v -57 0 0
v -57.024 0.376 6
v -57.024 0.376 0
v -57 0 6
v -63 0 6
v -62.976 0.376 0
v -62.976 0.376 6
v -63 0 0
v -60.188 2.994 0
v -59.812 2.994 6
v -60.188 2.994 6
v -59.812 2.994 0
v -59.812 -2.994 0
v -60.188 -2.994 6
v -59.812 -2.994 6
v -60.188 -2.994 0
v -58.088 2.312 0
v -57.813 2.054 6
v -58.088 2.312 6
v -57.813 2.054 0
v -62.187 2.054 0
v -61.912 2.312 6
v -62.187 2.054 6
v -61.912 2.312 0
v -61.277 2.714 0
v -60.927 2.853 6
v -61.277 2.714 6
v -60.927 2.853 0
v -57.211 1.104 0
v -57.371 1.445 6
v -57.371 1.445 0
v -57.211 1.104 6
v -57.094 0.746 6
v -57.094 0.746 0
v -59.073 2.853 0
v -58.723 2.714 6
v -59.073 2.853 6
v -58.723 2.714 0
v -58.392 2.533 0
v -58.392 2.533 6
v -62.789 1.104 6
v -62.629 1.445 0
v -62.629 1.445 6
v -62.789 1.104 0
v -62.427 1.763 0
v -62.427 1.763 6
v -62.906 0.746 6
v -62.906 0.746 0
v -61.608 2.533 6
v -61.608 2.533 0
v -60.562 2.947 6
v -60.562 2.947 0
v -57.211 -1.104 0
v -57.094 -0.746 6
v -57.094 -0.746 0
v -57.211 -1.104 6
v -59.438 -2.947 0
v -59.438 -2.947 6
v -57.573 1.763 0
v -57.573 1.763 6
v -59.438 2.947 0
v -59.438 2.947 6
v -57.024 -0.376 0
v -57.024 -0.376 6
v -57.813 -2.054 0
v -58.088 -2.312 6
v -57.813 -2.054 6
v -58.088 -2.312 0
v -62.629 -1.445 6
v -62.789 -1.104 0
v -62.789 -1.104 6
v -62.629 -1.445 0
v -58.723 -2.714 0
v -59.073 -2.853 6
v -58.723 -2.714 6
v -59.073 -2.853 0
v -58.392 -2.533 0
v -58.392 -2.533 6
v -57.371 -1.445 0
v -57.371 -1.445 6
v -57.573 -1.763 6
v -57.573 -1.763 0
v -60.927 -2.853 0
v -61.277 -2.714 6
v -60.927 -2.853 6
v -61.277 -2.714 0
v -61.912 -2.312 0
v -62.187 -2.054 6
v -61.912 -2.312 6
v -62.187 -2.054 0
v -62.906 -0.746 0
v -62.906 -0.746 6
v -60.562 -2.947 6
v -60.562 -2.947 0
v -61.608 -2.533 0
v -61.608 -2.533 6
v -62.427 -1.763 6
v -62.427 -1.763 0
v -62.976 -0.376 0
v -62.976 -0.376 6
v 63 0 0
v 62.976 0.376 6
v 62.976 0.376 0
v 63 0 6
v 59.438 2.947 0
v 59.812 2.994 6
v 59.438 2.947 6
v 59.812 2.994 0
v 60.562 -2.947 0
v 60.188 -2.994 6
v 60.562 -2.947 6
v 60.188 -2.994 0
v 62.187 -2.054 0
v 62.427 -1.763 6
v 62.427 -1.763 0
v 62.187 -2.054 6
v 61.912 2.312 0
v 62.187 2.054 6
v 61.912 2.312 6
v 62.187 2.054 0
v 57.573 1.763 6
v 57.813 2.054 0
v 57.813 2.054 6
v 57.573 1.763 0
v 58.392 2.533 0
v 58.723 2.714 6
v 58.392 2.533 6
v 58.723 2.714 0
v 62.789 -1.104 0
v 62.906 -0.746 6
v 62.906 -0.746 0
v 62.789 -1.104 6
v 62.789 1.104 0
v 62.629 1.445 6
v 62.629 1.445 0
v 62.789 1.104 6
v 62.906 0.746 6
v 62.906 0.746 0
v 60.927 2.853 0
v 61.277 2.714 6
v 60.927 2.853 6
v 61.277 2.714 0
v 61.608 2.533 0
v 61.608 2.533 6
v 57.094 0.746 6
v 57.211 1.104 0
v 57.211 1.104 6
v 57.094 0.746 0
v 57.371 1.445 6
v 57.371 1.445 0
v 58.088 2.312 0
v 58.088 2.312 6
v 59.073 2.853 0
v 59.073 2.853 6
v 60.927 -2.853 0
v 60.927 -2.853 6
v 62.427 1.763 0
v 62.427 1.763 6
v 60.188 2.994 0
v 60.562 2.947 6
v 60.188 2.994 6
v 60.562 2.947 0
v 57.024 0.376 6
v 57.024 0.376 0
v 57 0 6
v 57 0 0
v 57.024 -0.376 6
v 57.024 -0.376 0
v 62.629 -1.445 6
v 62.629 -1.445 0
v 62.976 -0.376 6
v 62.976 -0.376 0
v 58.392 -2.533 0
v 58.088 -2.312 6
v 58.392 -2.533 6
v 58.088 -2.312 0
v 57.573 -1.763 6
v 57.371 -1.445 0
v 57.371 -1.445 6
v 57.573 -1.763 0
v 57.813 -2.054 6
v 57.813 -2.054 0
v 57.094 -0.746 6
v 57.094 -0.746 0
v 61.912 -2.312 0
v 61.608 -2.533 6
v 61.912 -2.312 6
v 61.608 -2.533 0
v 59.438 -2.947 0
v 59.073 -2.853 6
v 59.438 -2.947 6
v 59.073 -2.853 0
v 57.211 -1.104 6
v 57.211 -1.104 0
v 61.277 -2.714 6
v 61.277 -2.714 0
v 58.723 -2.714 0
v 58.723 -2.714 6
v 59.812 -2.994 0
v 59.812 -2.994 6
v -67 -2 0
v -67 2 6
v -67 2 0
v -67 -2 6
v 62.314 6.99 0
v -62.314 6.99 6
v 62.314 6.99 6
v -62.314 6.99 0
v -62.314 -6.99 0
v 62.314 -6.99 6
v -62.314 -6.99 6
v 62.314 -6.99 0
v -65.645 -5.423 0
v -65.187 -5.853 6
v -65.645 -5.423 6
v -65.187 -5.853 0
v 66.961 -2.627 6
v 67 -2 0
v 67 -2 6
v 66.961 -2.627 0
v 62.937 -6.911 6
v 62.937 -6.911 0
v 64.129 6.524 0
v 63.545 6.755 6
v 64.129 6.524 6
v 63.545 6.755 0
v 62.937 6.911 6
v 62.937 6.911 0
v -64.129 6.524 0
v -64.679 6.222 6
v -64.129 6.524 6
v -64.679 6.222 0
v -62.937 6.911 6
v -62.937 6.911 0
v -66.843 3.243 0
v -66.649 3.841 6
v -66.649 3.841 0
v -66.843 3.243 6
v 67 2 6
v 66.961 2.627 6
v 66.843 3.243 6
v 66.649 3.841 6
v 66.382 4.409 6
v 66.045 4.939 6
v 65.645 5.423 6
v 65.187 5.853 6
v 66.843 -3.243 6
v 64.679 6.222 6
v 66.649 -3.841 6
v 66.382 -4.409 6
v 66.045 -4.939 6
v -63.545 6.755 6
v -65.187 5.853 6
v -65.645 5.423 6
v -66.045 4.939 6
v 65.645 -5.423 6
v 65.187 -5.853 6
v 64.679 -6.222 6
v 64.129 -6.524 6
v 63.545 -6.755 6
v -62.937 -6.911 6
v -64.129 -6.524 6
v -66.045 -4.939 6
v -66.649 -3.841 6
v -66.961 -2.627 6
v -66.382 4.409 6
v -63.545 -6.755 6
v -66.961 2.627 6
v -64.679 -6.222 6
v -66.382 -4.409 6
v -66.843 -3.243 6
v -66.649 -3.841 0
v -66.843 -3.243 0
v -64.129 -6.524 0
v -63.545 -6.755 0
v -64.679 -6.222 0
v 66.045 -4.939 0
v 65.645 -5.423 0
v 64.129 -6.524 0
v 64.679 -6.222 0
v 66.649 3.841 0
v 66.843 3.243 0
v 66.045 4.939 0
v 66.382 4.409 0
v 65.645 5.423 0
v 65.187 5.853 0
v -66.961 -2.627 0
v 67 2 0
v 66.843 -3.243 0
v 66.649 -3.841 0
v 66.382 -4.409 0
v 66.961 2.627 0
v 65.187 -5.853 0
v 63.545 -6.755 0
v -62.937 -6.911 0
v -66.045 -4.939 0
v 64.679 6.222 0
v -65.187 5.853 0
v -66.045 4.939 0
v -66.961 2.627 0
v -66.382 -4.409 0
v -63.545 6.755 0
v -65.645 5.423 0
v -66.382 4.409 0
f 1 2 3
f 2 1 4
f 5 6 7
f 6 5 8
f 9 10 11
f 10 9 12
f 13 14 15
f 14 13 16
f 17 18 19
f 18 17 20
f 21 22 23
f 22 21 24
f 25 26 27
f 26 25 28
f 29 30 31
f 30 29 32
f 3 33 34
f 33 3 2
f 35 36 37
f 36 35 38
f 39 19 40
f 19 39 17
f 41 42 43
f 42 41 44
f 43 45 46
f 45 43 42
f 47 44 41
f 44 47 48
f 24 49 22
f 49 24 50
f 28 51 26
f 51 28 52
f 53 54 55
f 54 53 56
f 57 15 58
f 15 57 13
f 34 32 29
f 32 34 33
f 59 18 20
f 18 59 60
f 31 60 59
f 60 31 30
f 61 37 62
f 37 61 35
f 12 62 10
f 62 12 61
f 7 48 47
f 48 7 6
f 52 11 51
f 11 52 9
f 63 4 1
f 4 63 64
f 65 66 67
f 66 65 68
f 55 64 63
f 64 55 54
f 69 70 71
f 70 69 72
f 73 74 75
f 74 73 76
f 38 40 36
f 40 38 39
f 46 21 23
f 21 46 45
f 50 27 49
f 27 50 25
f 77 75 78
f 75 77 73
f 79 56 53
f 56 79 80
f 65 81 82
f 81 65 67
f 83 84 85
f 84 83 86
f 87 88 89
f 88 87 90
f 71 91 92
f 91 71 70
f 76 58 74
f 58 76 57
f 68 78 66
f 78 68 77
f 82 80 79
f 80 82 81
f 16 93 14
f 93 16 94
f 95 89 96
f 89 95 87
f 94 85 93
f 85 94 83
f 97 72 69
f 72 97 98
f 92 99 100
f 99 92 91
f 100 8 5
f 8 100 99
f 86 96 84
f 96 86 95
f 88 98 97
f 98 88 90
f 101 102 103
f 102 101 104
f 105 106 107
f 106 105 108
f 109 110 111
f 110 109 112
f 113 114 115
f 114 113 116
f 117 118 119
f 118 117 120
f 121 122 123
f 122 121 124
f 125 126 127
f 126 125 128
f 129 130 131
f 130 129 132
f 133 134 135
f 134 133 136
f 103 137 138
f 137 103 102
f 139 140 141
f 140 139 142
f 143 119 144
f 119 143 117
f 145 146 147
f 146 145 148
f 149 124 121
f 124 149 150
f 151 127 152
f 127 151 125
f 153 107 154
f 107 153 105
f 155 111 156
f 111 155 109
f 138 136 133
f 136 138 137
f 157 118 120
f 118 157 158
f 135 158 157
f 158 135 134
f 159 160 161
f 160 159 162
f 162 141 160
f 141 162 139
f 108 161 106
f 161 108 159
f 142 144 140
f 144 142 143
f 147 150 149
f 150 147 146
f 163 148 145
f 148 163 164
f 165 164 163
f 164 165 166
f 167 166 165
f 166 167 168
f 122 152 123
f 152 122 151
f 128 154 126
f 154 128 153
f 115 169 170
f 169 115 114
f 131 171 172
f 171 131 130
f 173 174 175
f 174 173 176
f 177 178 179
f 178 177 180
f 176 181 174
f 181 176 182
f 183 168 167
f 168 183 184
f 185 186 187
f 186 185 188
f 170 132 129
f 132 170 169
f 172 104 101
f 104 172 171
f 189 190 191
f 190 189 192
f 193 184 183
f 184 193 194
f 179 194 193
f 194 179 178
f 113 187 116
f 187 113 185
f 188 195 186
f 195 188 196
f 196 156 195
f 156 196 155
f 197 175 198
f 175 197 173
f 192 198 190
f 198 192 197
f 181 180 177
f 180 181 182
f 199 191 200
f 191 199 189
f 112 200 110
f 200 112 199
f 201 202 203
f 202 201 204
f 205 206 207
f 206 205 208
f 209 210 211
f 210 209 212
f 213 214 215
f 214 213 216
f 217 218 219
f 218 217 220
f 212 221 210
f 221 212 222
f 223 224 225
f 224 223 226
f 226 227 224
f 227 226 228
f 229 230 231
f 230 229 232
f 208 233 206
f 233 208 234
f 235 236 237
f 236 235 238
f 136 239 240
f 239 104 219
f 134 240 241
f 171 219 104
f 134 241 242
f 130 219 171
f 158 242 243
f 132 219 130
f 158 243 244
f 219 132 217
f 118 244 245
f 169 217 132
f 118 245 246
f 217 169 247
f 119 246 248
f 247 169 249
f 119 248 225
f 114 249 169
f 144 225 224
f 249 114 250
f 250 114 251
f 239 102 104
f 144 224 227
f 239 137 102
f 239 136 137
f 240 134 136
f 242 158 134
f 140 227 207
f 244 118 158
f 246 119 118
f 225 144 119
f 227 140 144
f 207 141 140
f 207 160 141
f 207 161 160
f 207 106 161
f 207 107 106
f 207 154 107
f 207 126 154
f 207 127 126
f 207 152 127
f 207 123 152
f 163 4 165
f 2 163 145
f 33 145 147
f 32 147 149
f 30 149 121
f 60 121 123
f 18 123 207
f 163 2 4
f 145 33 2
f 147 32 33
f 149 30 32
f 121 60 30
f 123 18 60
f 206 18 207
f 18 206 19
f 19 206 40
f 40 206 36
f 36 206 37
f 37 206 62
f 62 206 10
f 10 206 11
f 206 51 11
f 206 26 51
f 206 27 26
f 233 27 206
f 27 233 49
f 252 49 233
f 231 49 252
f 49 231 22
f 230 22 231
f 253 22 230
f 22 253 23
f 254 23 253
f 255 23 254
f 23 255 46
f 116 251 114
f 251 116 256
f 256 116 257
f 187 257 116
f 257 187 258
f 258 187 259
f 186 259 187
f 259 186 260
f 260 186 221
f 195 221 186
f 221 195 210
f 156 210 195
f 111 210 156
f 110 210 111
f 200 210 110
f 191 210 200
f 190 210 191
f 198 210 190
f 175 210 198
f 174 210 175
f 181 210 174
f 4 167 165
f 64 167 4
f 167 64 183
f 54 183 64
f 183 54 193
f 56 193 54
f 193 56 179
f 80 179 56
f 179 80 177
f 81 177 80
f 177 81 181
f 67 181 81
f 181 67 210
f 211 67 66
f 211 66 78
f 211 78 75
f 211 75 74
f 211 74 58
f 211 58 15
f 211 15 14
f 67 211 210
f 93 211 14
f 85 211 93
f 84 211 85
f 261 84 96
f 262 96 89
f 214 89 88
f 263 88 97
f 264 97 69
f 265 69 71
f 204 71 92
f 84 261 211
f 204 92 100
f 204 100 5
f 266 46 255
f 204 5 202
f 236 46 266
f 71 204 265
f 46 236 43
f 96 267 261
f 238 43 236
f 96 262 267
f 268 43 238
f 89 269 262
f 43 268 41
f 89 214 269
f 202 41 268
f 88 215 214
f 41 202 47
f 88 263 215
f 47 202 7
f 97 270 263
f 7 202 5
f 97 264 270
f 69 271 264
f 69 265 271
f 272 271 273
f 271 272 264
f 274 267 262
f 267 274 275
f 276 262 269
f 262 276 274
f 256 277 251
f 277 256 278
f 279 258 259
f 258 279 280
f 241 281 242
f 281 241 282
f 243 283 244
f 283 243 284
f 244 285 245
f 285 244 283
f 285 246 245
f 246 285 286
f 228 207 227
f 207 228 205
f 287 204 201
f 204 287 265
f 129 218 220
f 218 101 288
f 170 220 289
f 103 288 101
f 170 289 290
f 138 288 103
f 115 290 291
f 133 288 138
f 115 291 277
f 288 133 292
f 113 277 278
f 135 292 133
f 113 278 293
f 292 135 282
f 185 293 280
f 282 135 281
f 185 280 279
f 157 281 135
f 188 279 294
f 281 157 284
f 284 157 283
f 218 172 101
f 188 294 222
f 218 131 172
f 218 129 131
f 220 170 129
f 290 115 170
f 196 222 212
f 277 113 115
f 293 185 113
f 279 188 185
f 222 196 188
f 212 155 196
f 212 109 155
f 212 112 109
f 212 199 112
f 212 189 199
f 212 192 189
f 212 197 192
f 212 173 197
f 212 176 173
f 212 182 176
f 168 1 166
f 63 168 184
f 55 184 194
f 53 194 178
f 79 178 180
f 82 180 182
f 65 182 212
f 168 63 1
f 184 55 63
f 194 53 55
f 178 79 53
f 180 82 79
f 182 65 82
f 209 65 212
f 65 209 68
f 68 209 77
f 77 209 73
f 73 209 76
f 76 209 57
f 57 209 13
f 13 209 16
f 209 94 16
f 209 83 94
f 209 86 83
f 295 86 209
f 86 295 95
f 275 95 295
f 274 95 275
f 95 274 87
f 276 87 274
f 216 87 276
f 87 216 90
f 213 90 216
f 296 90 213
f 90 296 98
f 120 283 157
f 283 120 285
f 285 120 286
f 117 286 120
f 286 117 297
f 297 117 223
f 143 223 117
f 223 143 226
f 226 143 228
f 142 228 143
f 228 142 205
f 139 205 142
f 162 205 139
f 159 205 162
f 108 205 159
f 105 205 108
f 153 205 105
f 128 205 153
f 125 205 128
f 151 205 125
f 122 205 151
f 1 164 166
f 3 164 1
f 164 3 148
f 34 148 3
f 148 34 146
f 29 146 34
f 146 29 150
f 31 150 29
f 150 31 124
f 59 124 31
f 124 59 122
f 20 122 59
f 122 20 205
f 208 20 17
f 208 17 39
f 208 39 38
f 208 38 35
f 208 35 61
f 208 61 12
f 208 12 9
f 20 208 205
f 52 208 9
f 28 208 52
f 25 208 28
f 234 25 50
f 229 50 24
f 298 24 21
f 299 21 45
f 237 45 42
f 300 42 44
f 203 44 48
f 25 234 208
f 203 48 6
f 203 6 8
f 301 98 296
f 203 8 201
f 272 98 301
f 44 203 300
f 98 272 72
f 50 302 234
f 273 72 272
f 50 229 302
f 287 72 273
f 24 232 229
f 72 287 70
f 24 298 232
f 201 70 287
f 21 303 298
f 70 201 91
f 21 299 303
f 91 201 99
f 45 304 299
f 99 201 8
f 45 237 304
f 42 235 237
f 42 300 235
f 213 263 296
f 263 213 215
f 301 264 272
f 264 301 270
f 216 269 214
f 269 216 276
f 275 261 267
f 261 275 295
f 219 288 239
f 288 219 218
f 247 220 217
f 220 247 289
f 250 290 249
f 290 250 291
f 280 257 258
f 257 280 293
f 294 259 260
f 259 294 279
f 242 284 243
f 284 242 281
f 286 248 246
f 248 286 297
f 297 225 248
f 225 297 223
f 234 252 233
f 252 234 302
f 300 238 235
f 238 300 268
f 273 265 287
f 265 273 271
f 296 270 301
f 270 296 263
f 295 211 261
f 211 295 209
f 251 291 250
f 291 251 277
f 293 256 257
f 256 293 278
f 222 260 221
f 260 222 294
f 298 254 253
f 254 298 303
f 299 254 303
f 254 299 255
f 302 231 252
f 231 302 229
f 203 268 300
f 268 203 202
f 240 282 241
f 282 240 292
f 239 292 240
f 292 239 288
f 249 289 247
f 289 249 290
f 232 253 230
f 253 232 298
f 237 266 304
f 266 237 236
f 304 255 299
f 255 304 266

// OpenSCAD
$fn = 50;


difference() {
	union() {
		hull() {
			translate(v = [-62.0000000000, 2.0000000000, 0]) {
				cylinder(h = 6, r = 5);
			}
			translate(v = [62.0000000000, 2.0000000000, 0]) {
				cylinder(h = 6, r = 5);
			}
			translate(v = [-62.0000000000, -2.0000000000, 0]) {
				cylinder(h = 6, r = 5);
			}
			translate(v = [62.0000000000, -2.0000000000, 0]) {
				cylinder(h = 6, r = 5);
			}
		}
	}
	union() {
		translate(v = [-60.0000000000, 0.0000000000, -100.0000000000]) {
			cylinder(h = 200, r = 3.0000000000);
		}
		translate(v = [-60.0000000000, 0.0000000000, -100.0000000000]) {
			cylinder(h = 200, r = 3.0000000000);
		}
		translate(v = [60.0000000000, 0.0000000000, -100.0000000000]) {
			cylinder(h = 200, r = 3.0000000000);
		}
		translate(v = [60.0000000000, 0.0000000000, -100.0000000000]) {
			cylinder(h = 200, r = 3.0000000000);
		}
	}
}
